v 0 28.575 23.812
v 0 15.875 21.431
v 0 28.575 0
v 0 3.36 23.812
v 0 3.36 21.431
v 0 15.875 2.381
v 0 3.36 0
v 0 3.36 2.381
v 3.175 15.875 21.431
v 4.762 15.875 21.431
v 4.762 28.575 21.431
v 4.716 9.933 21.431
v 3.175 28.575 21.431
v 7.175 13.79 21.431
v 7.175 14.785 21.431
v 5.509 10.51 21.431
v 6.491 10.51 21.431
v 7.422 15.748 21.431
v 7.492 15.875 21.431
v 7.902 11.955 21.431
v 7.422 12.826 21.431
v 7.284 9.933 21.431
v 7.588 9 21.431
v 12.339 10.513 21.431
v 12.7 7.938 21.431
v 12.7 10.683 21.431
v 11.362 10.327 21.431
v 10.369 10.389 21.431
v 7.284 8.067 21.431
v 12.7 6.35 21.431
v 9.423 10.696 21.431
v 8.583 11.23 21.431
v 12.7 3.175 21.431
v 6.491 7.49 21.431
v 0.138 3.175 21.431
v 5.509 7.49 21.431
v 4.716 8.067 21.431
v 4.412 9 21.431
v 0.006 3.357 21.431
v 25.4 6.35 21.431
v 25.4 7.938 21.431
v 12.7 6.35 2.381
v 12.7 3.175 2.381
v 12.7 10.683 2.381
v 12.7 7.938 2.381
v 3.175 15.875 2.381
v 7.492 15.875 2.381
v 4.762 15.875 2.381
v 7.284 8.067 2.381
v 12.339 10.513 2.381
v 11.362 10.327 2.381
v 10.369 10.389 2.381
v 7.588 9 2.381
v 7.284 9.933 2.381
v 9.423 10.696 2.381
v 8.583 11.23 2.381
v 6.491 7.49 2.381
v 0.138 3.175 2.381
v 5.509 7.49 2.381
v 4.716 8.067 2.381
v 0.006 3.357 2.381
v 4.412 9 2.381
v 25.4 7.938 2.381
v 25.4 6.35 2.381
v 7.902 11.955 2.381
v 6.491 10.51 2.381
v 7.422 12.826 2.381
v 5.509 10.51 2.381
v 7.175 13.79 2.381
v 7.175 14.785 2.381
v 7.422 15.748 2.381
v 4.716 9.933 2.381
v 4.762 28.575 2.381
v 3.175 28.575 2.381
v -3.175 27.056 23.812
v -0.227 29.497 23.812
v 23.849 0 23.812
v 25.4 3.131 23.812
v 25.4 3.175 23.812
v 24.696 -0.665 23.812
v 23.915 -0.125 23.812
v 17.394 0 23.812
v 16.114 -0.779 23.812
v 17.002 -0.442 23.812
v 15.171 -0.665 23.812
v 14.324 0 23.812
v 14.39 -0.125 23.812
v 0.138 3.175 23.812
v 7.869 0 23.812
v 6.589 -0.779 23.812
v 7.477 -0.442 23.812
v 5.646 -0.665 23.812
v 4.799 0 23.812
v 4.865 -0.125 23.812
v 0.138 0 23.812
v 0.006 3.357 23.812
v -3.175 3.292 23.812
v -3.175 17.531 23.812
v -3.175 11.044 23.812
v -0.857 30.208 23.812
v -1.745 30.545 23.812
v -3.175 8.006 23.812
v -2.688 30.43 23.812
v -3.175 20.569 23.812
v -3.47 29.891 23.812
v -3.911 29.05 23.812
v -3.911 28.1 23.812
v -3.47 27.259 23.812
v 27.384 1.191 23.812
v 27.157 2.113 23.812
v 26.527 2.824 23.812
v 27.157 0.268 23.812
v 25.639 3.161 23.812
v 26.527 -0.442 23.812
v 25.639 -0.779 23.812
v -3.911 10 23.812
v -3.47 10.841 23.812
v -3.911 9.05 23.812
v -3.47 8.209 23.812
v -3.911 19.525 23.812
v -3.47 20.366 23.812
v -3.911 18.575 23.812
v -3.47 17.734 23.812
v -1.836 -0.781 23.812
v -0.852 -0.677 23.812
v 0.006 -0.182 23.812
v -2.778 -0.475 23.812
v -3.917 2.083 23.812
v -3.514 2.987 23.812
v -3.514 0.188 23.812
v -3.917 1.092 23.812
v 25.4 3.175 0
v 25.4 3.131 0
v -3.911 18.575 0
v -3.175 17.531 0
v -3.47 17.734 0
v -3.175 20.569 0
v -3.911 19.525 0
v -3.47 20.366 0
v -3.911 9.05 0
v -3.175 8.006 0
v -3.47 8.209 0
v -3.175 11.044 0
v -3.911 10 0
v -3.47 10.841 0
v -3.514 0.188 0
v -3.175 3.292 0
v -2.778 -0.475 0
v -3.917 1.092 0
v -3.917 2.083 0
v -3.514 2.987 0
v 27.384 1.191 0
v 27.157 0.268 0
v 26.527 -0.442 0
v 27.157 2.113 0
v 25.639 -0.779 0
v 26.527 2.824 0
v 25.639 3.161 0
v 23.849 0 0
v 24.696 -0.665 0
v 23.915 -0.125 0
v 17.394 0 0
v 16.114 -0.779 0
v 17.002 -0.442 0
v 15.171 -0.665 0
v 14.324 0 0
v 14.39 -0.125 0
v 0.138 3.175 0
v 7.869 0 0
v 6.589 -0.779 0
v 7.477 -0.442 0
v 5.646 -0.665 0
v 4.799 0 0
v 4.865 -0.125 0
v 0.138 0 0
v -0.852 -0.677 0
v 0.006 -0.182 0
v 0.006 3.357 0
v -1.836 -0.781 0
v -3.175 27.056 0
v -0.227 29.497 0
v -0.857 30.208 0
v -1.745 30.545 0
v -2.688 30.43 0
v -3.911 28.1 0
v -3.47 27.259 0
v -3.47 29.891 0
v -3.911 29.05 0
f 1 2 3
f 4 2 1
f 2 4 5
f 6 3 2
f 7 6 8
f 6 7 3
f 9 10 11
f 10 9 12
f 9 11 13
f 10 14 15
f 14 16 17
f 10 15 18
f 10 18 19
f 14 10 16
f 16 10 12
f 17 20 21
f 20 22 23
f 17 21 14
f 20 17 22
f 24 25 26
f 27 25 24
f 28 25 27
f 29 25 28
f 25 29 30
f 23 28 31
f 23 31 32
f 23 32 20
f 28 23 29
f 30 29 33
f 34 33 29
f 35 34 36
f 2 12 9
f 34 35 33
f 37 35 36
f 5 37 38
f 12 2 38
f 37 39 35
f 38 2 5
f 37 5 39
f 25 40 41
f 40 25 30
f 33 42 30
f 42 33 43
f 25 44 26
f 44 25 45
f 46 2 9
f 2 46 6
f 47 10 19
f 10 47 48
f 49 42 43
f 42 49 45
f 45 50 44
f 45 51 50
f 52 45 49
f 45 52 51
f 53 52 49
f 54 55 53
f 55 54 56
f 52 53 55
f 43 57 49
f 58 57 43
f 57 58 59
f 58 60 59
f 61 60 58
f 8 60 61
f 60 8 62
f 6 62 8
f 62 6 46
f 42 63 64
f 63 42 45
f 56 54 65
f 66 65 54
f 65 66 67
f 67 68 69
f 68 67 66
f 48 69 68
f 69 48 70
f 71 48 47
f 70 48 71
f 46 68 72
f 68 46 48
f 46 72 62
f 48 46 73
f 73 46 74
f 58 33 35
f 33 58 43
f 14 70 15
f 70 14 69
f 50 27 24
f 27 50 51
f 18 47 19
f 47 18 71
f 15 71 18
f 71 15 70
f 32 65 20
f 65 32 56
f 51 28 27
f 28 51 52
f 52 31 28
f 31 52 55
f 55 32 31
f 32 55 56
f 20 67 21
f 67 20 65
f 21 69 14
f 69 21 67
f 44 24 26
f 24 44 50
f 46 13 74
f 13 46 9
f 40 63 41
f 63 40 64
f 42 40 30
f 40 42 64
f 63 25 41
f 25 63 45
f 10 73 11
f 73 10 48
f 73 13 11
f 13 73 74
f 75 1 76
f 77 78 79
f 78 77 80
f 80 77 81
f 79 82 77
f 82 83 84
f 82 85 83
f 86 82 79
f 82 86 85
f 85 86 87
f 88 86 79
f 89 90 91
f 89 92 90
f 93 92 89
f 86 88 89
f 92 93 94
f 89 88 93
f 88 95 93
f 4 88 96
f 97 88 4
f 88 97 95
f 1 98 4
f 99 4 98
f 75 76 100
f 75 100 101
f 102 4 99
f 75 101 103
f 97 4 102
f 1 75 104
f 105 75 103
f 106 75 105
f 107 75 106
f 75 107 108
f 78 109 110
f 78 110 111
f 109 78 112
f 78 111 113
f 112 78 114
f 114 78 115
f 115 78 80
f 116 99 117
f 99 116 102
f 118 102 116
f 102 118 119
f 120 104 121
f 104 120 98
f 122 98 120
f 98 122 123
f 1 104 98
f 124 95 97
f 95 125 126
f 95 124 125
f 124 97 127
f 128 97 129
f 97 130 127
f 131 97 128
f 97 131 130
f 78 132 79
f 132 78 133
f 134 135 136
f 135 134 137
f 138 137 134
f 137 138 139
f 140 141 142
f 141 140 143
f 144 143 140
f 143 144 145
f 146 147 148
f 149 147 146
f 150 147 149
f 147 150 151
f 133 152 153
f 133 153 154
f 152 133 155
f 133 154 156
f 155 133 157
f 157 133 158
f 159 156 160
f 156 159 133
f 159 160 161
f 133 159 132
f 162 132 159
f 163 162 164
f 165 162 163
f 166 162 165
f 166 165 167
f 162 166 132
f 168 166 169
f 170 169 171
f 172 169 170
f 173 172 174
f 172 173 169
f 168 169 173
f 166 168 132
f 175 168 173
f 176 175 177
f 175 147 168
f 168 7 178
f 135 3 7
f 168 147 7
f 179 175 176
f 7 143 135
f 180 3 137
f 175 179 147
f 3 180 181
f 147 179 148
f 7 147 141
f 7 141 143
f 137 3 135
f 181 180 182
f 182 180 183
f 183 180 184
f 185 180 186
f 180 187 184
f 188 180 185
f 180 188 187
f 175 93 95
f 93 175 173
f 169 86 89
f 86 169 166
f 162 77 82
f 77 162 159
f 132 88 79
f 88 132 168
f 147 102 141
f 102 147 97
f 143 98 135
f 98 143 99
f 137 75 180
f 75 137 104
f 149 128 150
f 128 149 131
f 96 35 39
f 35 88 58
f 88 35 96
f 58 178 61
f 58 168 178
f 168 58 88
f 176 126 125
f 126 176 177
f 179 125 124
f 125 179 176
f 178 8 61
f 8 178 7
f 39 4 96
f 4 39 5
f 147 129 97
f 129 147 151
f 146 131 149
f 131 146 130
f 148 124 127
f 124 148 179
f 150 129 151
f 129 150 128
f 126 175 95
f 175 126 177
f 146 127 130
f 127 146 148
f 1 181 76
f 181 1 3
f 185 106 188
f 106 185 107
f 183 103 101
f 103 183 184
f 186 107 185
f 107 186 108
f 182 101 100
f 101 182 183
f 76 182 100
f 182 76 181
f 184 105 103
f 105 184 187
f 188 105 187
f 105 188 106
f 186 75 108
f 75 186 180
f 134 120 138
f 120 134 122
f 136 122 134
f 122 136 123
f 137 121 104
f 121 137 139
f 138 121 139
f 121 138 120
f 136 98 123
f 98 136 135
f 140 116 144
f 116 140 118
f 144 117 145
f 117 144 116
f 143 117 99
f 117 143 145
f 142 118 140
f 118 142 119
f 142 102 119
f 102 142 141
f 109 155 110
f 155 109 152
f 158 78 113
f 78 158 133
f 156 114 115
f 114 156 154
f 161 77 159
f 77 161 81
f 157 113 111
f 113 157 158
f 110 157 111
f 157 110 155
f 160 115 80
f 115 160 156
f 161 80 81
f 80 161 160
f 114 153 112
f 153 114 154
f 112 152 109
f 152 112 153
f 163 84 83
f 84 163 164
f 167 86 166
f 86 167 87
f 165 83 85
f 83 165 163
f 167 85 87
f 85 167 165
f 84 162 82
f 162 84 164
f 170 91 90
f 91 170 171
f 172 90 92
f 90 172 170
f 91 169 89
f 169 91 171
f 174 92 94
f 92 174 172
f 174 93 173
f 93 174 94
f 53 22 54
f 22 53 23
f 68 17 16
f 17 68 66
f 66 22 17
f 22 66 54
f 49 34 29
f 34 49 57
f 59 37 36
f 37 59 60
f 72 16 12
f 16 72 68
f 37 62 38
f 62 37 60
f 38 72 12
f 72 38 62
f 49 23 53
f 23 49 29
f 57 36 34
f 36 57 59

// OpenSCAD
// file: joints.scad
/**
 * joints.scad is part of Paper Laptop project.
 * This file contains various models for joining two or
 * more pieces of flat materials together.
 *
 * @author R. S. Doiel, <rsdoiel@gmail.com>
 * copyright (c) 2016 all rights reserved
 * Released under a BSD 2-clause license
 */

// Foam board firm enough to make a case with is about
// 1/8th to 1/4th inch (6.35mm) thick. Usually sold in single sheets
// of about 20"x30".

//
// Basic models are for parts without any holes for fasteners.
//

/*
 * CornerBasic() - corner joint without fastener hole
 */
module CornerBasic() {
    u = 3.175; // Unit is 3.175mm or 1/8th inch:w
    t = 6.35; // Thickness of the 1/4th" Foam board

    // Inner block, width, depth, height
    translate([0, t, t/2]) {
        difference() {
            color([1,0,0]) cube([25.4, 25.4, 25.4]);
            translate([t*3.5,t*3.5,-1]) {
                color([1,0,1]) cylinder(h=28,r=t*1.25,center=false);
            }
        }
    }

     // Inner shell
    translate([t,2*t,t/2]) {
        color([0,1,0]) cube([50.8-t,t/2,25.4]);
        color([0,1,0]) cube([t/2,50.8-t,25.4]);
    }

    // Outer shell
    color([0,1,0]) cube([50.8,t,25.4+t]);
    translate([-t,t,0]) {
        color([0,1,0]) cube([t,50.8,25.4+t]);
    }
    // Outer corners
    translate([u*-1,u,0]) {
        color([0,1,0]) cylinder(h=25.4+t,r=1.5*u,center=false);
    }

    // Outer bumps
    translate([u*-1.25,u*18,0]) {
        color([0,1,0]) cylinder(h=25.4+t,r=1.25*u,center=false);
    }
    translate([u*-1.25,u*12,0]) {
        color([0,1,0]) cylinder(h=25.4+t,r=1.25*u,center=false);
    }
    translate([u*-1.25,u*6,0]) {
        color([0,1,0]) cylinder(h=25.4+t,r=1.25*u,center=false);
    }

    translate([u*16,u*0.75,0]) {
        color([0,1,0]) cylinder(h=25.4+t,r=1.25*u,center=false);
    }
    translate([u*10,u*0.75,0]) {
        color([0,1,0]) cylinder(h=25.4+t,r=1.25*u,center=false);
    }
    translate([u*4,u*0.75,0]) {
        color([0,1,0]) cylinder(h=25.4+t,r=1.25*u,center=false);
    }
}

//
// Corner() basic corner joint plus hole for fastener
//
module Corner() {
    // Scale down the basic corner so that the
    // for 50% width/depth, 75% of height
    scale([0.5, 0.5, 0.75]) {
        difference() {
            u = 3.175;
            CornerBasic();
            // Add a hole for screw
            translate([12,18,0]) {
                color([0,0,1]) cylinder(
                    h=25.4+(4*u),
                    r=u,
                    center=false
                );
            }
        }
    }
}

//
// EndBasic
//
module EndBasic() {
    u = 3.175; // Unit is 3.175mm or 1/8th inch:w
    t = 6.35; // Thickness of the 1/4th" Foamboard

    // Inner block, width, depth, height
    translate([0, t, t]) {
            color([1,0,0]) cube([25.4, 25.4, 25.4]);
    }
    // Outer shell
    color([0,1,0]) cube([50.8,t,25.4+(2*t)]);

    // Outer corners
    translate([u*-1,u,0]) {
        color([0,1,0]) cylinder(h=25.4+(2*t),r=1.5*u,center=false);
    }

    translate([u*16,u*0.75,0]) {
        color([0,1,0]) cylinder(h=25.4+(2*t),r=1.25*u,center=false);
    }
    translate([u*10,u*0.75,0]) {
        color([0,1,0]) cylinder(h=25.4+(2*t),r=1.25*u,center=false);
    }
    translate([u*4,u*0.75,0]) {
        color([0,1,0]) cylinder(h=25.4+(2*t),r=1.25*u,center=false);
    }

    // Inner shell
    translate([t,2*t,t]) {
        color([0,1,0]) cube([50.8-t,t,25.4]);
    }
}

//
// End() basic corner joint plus hole for fastener
//
module End() {
    // Scale down the basic corner so that the
    // for 50% width/depth, 75% of height
    scale([0.5, 0.5, 0.75]) {
        difference() {
            u = 3.175;
            EndBasic();
            // Add a hole for screw
            translate([12,18,0]) {
                color([0,0,1]) cylinder(h=25.4+(4*u),r=u,center=false);
            }
        }
    }
}

//
// SpliceBasic
//
module SpliceBasic() {
    u = 3.175; // Unit is 3.175mm or 1/8th inch:w
    t = 6.35; // Thickness of the 1/4th" Foamboard

    // Inner block (cube: [width, depth, height])
    translate([0, t, t]) {
            color([1,0,0]) cube([25.4, 25.4, 25.4]);
    }
    // Outer shell
    color([0,1,0]) cube([50.8,t,25.4+(2*t)]);

    // Outer corners
    translate([u*16,u*0.75,0]) {
        color([0,1,0]) cylinder(h=25.4+(2*t),r=1.25*u,center=false);
    }
    translate([u*10,u*0.75,0]) {
        color([0,1,0]) cylinder(h=25.4+(2*t),r=1.25*u,center=false);
    }
    translate([u*4,u*0.75,0]) {
        color([0,1,0]) cylinder(h=25.4+(2*t),r=1.25*u,center=false);
    }

    // Inner shell
    translate([t,2*t,t]) {
        color([0,1,0]) cube([50.8-t,t,25.4]);
    }

    // Mirrored shapes
    mirror(180) {
        // Inner block (cube: [width, depth, height])
        translate([0, t, t]) {
                color([1,0,0]) cube([25.4, 25.4, 25.4]);
        }
        // Outer shell
        color([0,1,0]) cube([50.8,t,25.4+(2*t)]);

        // Outer corners
        translate([u*16,u*0.75,0]) {
            color([0,1,0]) cylinder(h=25.4+(2*t),r=1.25*u,center=false);
        }
        translate([u*10,u*0.75,0]) {
            color([0,1,0]) cylinder(h=25.4+(2*t),r=1.25*u,center=false);
        }
        translate([u*4,u*0.75,0]) {
            color([0,1,0]) cylinder(h=25.4+(2*t),r=1.25*u,center=false);
        }

        // Inner shell
        translate([t,2*t,t]) {
            color([0,1,0]) cube([50.8-t,t,25.4]);
        }
    }
}

//
// Splice() basic corner joint plus hole for fastener
//
module Splice() {
    scale([0.5, 0.5, 0.75]) {
        difference() {
            u = 3.175;
            SpliceBasic();
            // Add a hole for screw
            translate([0,18,0]) {
                color([0,0,1]) cylinder(h=25.4+(4*u),r=u,center=false);
            }
        }
    }
}


// Four corner joints
module FourCornersGrouped() {
    Corner();
    translate([120,6.35,0]) {
        rotate(90) {
            Corner();
        }
    }
    translate([114, 124, 0]) {
        rotate(180) {
            Corner();
            translate([120,6.35,0]) {
                rotate(90) {
                    Corner();
                }
            }
        }
    }
}

// Two End Pieces
module TwoEndsGrouped() {
    translate([0, 0, 0]) {
        End();
    }
    translate([114, 0, 0]) {
        mirror(180) End();
    }
}

module TwoSplicesGrouped() {
    translate([58, 0, 0]) {
        Splice();
    }
    translate([58, 38, 0]) {
        Splice();
    }
}

//Corner();
//Splice();
//End();
//FourCornersGrouped();
//TwoEndsGrouped();
//TwoSplicesGrouped();
// main file
/**
 * Print a single corner.
 */
 include <joints.scad>

Corner();
